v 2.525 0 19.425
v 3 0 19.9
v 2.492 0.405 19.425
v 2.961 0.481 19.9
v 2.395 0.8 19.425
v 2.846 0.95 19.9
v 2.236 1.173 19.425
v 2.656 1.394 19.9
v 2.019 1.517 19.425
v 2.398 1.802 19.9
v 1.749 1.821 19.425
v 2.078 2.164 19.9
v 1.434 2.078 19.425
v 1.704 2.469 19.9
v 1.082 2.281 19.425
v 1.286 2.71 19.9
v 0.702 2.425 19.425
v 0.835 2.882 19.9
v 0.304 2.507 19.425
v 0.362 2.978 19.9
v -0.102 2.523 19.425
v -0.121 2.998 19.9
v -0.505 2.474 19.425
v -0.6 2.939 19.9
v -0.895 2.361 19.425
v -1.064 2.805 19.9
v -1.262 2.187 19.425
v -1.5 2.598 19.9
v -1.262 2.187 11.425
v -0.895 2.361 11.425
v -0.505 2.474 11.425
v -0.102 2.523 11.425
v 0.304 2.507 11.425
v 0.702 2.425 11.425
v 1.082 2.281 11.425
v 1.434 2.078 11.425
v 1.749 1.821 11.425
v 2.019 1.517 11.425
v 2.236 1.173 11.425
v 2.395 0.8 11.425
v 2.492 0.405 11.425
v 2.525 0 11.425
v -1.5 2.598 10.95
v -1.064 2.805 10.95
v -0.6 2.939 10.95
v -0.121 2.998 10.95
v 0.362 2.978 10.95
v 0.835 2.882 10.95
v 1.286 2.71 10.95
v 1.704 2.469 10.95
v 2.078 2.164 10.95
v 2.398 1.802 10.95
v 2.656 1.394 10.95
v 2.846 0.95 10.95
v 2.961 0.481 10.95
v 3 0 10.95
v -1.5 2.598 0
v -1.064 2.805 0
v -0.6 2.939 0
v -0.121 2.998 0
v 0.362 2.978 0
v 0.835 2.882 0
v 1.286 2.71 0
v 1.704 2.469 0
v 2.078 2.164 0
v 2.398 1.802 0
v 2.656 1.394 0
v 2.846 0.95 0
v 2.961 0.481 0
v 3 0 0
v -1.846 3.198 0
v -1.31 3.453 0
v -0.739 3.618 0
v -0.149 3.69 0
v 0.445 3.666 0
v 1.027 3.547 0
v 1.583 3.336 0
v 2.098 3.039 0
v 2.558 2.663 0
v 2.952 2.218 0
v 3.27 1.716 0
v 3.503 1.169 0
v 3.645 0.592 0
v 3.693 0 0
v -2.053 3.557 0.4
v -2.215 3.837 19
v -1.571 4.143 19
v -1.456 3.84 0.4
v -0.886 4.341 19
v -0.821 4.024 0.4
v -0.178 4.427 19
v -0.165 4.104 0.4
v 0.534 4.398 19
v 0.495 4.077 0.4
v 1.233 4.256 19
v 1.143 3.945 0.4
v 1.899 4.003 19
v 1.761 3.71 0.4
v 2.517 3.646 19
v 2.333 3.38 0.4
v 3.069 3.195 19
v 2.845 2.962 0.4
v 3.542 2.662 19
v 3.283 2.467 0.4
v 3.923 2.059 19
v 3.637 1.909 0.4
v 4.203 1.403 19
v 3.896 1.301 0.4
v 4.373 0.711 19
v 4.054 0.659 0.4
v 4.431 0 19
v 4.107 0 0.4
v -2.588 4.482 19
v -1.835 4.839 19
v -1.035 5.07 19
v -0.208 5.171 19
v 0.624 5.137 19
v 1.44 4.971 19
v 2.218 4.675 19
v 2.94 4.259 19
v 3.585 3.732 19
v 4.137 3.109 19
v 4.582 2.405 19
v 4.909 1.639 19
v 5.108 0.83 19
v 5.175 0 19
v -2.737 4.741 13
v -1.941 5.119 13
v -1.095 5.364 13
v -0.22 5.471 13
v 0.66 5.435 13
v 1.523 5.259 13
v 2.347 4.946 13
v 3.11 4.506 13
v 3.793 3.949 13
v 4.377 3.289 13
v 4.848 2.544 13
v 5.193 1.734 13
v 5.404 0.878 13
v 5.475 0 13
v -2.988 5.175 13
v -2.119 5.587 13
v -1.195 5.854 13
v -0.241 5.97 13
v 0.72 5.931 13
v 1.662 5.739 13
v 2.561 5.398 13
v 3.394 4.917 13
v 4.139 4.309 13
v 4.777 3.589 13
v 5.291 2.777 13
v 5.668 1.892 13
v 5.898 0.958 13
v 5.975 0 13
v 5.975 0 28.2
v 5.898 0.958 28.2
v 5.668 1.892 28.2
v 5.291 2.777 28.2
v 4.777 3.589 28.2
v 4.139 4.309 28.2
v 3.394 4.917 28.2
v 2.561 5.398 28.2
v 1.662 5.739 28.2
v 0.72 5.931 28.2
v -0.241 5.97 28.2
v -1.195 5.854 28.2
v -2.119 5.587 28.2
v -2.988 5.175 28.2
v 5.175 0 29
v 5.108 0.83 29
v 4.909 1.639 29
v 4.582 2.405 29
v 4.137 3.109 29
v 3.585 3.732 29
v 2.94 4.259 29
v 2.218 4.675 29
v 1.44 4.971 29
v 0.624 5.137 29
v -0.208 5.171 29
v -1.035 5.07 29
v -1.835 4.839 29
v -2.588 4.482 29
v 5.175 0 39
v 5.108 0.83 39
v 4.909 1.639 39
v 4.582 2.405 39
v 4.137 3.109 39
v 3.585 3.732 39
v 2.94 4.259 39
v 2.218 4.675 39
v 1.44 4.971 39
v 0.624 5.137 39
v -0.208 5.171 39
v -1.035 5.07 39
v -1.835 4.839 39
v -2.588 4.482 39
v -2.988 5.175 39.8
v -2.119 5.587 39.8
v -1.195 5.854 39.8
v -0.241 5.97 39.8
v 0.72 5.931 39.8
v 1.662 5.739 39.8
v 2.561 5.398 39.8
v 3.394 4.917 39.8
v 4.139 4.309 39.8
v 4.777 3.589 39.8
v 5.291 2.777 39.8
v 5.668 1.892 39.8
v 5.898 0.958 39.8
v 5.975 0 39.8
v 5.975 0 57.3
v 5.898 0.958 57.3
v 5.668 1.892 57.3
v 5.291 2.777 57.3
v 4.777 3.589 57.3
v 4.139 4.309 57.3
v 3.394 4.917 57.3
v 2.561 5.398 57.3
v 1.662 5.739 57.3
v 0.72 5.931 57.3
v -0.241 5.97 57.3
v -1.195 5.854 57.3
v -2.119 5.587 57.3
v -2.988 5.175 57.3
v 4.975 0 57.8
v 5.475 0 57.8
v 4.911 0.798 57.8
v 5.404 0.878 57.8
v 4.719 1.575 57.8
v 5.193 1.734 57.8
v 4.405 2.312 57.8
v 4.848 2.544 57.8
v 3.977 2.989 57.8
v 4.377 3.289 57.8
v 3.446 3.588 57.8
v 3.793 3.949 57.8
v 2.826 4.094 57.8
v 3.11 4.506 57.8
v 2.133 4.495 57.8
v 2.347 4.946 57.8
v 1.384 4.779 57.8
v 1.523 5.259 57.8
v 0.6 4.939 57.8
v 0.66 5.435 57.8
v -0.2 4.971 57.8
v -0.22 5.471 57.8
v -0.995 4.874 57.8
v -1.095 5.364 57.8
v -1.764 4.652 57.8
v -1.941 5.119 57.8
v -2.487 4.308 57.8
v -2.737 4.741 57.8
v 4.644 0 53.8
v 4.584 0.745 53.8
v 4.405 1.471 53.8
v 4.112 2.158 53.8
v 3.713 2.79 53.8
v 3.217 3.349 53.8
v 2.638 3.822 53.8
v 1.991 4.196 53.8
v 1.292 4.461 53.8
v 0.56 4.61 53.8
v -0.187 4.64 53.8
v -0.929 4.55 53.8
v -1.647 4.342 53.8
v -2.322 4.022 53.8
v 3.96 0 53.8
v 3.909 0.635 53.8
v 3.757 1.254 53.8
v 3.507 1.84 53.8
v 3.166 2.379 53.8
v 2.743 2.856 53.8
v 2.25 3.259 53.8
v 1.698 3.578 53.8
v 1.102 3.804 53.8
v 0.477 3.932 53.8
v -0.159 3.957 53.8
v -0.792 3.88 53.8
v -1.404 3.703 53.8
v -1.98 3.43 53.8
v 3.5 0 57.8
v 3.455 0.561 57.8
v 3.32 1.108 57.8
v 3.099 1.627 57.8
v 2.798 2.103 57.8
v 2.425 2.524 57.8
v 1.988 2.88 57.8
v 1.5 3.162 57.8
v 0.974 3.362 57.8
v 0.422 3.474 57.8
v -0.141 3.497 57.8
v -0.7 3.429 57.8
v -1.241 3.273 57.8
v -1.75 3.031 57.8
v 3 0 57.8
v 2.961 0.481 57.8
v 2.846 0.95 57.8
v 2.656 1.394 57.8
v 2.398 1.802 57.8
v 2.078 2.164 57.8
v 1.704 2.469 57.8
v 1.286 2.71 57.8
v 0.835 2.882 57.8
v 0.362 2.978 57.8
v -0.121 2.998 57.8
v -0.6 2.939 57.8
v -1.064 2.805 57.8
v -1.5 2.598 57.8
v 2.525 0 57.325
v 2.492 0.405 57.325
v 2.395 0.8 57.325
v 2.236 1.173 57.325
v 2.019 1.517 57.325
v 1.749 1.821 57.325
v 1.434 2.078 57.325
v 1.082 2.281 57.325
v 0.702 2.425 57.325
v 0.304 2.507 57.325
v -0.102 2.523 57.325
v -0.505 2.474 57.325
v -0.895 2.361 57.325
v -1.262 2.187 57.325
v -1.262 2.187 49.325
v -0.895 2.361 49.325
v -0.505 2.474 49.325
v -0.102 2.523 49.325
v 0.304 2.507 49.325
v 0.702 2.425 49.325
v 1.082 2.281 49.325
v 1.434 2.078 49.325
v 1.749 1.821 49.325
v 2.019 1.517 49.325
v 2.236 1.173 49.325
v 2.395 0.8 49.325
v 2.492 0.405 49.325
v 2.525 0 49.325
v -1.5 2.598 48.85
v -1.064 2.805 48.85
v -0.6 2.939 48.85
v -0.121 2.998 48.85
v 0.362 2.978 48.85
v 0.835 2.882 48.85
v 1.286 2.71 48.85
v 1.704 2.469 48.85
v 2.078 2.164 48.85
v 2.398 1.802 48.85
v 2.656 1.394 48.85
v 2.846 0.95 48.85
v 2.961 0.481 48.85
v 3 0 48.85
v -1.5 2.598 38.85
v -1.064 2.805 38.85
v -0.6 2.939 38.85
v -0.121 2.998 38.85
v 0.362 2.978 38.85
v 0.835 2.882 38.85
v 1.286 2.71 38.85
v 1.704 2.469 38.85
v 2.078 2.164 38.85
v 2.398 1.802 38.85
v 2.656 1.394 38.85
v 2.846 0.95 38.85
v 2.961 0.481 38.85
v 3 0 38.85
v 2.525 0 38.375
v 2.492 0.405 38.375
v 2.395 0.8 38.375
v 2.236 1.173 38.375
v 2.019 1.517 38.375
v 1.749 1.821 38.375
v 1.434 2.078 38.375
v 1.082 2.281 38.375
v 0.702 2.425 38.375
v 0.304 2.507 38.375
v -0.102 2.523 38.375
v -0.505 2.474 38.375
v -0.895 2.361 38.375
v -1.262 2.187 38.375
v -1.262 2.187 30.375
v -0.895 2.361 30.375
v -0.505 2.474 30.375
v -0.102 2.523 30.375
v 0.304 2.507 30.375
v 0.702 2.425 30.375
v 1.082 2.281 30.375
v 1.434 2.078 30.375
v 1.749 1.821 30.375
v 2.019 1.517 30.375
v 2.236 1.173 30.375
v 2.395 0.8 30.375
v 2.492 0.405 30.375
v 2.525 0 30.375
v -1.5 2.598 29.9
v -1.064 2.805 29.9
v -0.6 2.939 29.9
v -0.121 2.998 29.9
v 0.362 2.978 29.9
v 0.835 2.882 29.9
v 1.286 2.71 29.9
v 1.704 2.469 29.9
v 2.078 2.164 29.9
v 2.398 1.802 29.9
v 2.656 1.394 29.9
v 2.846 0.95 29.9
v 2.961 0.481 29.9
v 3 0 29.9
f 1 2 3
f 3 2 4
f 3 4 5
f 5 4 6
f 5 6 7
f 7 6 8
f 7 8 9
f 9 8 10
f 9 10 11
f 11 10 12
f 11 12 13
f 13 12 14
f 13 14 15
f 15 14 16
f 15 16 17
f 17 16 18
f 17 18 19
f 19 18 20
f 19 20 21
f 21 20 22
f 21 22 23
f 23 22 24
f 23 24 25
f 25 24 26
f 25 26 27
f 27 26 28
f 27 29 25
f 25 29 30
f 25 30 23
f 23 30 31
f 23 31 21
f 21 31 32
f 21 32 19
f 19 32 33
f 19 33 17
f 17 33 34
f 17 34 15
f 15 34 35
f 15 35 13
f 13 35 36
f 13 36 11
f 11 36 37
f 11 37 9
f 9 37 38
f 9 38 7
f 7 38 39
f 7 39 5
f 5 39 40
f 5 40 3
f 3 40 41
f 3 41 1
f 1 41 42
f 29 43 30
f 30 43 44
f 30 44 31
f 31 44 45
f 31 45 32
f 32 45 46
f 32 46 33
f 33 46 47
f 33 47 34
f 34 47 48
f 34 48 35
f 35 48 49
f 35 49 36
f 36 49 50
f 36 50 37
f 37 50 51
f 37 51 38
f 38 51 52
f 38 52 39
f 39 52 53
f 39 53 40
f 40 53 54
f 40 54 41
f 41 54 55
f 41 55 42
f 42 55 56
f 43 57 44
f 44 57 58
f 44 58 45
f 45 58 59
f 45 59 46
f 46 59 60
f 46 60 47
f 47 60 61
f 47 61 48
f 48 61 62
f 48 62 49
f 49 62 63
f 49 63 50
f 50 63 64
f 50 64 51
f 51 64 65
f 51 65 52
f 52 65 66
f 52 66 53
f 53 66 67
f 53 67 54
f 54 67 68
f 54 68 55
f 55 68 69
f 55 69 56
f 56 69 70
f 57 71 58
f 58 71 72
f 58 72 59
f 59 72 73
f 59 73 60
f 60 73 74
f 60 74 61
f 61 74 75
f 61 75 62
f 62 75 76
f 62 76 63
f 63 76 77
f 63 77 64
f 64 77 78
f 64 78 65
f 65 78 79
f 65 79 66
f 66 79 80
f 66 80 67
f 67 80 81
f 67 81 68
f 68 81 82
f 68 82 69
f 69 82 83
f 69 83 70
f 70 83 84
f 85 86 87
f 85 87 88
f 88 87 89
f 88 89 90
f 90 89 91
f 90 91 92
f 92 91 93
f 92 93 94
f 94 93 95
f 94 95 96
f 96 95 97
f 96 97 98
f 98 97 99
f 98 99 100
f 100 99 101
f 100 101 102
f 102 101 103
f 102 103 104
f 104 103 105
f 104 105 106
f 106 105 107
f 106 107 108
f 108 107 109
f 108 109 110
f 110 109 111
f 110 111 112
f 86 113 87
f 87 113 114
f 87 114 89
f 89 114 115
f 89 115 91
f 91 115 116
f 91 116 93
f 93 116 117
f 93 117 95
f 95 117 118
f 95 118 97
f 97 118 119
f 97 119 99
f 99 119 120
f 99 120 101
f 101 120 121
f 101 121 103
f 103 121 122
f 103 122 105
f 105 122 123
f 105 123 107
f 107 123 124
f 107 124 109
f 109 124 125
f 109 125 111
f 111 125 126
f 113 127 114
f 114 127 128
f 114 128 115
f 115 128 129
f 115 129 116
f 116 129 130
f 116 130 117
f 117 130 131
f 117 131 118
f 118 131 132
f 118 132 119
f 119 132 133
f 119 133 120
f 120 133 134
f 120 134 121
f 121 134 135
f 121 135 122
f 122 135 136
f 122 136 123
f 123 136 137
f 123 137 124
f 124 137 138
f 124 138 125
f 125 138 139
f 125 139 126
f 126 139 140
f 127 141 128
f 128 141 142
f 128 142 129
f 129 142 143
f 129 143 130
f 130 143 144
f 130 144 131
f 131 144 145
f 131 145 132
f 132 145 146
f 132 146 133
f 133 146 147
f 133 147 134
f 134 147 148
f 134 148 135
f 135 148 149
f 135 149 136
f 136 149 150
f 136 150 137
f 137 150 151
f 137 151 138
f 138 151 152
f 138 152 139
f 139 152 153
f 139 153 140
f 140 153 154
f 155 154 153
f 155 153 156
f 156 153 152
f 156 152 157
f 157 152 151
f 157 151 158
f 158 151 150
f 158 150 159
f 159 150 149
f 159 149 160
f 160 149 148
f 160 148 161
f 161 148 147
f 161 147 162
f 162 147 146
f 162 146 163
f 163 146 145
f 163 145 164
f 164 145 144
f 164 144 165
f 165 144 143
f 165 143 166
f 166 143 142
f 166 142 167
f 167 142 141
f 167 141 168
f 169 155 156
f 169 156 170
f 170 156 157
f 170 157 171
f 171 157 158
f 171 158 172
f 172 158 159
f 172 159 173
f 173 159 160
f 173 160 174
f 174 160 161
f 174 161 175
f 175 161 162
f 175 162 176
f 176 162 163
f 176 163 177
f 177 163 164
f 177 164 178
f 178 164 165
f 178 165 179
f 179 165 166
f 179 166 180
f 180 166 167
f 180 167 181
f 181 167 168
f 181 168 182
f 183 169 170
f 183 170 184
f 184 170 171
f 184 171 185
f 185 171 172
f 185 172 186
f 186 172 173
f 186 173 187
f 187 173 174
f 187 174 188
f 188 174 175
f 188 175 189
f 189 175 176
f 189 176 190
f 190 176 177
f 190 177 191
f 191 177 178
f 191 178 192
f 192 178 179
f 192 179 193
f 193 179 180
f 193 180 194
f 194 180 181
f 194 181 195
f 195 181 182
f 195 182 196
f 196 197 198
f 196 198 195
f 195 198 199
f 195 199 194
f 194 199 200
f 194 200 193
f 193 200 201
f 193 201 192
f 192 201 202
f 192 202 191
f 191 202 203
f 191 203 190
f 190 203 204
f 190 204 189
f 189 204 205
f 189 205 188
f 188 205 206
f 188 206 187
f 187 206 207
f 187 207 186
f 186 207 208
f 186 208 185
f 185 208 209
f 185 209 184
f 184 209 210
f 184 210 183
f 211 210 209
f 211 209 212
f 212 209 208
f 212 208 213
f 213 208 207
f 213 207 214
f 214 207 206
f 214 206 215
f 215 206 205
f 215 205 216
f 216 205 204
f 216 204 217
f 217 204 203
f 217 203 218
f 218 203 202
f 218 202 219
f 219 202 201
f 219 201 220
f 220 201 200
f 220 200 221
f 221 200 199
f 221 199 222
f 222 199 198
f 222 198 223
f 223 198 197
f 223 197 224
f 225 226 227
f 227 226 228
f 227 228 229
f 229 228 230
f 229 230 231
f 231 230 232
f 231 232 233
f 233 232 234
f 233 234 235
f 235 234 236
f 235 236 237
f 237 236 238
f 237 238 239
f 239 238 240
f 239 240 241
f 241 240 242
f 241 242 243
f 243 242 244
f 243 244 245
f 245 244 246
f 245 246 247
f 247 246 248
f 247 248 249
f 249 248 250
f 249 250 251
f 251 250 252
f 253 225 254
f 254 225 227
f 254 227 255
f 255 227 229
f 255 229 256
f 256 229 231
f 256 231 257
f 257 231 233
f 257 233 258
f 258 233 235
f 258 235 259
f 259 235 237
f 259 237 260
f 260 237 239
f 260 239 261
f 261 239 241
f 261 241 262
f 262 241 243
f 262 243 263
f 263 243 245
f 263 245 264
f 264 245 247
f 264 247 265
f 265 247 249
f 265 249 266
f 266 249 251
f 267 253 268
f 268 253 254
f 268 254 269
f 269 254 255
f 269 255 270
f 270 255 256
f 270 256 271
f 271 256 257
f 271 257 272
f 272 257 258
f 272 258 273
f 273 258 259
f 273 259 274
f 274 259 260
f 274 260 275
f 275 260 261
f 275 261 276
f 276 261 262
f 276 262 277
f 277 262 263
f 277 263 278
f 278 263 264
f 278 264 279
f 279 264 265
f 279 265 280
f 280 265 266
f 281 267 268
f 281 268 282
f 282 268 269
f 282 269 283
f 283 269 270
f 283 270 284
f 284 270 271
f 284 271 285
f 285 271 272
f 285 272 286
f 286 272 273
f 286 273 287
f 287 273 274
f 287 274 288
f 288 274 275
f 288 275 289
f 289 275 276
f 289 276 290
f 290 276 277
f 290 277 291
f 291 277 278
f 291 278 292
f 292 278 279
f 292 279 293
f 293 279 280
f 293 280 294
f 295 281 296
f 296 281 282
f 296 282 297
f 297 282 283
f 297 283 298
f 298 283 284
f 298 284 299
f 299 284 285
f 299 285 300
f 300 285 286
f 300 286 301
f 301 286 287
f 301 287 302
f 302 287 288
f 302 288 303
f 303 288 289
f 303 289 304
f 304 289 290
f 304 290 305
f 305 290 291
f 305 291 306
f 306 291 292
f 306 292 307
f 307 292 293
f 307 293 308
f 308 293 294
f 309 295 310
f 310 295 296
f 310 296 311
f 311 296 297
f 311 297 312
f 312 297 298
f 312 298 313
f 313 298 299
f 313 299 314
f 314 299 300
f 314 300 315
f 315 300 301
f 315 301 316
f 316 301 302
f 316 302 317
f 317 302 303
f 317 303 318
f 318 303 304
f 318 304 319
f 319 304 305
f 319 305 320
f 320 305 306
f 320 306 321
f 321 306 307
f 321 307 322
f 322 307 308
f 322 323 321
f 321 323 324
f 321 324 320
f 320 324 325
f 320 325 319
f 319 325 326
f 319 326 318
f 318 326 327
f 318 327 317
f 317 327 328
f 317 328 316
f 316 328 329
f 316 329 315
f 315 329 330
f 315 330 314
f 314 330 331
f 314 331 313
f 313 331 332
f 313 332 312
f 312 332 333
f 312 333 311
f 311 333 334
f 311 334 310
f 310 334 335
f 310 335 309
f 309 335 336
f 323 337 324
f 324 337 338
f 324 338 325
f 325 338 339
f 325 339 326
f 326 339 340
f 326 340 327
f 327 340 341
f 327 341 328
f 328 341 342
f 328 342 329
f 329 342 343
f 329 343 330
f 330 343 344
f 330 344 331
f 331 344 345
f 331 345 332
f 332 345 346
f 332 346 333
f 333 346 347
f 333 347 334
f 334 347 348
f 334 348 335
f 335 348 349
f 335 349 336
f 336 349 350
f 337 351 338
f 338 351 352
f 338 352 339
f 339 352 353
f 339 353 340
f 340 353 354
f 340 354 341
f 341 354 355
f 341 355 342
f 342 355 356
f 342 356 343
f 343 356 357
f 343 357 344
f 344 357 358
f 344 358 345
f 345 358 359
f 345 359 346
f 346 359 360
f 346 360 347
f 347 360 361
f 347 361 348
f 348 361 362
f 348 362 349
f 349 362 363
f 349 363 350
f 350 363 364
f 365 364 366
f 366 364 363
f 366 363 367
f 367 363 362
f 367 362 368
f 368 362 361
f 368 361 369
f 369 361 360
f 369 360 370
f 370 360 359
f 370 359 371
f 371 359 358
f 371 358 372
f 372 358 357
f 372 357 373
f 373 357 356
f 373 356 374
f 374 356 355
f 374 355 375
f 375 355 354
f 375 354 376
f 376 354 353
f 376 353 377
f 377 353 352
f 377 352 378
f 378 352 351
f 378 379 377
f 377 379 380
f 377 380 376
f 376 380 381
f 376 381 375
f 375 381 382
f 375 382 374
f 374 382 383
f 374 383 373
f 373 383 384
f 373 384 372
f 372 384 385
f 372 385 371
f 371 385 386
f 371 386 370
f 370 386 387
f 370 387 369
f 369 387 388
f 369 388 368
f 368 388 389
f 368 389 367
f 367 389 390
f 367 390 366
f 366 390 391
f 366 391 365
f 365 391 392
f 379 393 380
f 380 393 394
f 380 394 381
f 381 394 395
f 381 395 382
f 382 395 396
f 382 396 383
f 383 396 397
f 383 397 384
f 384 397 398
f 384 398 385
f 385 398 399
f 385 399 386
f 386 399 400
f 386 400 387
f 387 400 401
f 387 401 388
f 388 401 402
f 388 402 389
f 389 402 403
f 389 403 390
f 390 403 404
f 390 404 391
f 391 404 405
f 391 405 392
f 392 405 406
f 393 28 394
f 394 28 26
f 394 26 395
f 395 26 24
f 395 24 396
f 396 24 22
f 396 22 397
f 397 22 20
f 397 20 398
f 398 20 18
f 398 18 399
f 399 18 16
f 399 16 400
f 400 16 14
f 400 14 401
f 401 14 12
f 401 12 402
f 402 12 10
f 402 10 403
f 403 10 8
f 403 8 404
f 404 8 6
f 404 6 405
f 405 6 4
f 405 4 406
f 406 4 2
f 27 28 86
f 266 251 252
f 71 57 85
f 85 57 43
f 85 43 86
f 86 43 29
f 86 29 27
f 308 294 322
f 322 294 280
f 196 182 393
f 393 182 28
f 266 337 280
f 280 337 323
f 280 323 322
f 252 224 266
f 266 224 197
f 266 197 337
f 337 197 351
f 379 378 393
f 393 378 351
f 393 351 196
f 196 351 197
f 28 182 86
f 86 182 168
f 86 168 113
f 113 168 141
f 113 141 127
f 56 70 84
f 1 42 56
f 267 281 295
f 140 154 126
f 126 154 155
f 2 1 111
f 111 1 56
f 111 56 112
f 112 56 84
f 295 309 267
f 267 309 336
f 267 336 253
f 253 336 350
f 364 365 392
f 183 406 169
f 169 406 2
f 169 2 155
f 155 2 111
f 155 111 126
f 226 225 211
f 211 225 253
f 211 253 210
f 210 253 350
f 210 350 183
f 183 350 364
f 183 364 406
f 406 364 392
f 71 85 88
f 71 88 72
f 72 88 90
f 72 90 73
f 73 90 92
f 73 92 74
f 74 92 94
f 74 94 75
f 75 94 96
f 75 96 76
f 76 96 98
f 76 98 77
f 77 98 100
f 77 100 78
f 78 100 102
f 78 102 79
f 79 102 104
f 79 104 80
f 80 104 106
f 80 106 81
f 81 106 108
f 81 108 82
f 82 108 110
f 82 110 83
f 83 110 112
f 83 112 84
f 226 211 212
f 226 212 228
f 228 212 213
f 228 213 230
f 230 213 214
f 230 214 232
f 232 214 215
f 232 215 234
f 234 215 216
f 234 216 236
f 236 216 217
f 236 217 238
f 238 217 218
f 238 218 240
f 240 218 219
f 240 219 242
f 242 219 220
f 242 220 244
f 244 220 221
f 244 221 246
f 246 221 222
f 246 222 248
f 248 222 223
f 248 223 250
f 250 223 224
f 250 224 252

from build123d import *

# Parameters (mm, degrees)
REVOLVE_1_ANGLE = 120
CHAMFER_1_SIZE  = 0.4
CHAMFER_1_SIZE2 = 0.407145225
CHAMFER_2_SIZE  = 0.5


with BuildPart() as part:
    # 스케치1 → 회전1 (revolve)
    with BuildSketch(Plane(origin=(0, 0, 0), x_dir=(1, 0, 0), z_dir=(0, 1, 0))):
        Polygon((2.525, -30.375), (2.525, -38.375), (3, -38.85), (3, -48.85), (2.525, -49.325), (2.525, -57.325), (3, -57.8), (3.5, -57.8), (3.960399052, -53.8), (4.644221552, -53.8), (4.975, -57.8), (5.975, -57.8), (5.975, -39.8), (5.175, -39), (5.175, -29), (5.975, -28.2), (5.975, -13), (5.475, -13), (5.175, -19), (4.430616082, -19), (4.1, 0), (3, 0), (3, -10.95), (2.525, -11.425), (2.525, -19.425), (3, -19.9), (3, -29.9), align=None)
    revolve(axis=Axis((0, 0, 0), (0, 0, 1)), revolution_arc=REVOLVE_1_ANGLE)

    # 모따기1
    chamfer_1_edges = [part.edges().sort_by_distance(p)[0] for p in [
        (2.05, 3.550704156, 0),
    ]]
    chamfer_1_side = [part.faces().sort_by_distance(p)[0] for p in [
        (2.132654021, 3.693865118, 9.5),
    ]]
    chamfer(chamfer_1_edges, length=CHAMFER_1_SIZE, length2=CHAMFER_1_SIZE2, reference=chamfer_1_side[0])

    # 모따기2
    chamfer_2_edges = [part.edges().sort_by_distance(p)[0] for p in [
        (2.9875, 5.174501788, 57.8),
    ]]
    chamfer(chamfer_2_edges, length=CHAMFER_2_SIZE)


solid = part.part
